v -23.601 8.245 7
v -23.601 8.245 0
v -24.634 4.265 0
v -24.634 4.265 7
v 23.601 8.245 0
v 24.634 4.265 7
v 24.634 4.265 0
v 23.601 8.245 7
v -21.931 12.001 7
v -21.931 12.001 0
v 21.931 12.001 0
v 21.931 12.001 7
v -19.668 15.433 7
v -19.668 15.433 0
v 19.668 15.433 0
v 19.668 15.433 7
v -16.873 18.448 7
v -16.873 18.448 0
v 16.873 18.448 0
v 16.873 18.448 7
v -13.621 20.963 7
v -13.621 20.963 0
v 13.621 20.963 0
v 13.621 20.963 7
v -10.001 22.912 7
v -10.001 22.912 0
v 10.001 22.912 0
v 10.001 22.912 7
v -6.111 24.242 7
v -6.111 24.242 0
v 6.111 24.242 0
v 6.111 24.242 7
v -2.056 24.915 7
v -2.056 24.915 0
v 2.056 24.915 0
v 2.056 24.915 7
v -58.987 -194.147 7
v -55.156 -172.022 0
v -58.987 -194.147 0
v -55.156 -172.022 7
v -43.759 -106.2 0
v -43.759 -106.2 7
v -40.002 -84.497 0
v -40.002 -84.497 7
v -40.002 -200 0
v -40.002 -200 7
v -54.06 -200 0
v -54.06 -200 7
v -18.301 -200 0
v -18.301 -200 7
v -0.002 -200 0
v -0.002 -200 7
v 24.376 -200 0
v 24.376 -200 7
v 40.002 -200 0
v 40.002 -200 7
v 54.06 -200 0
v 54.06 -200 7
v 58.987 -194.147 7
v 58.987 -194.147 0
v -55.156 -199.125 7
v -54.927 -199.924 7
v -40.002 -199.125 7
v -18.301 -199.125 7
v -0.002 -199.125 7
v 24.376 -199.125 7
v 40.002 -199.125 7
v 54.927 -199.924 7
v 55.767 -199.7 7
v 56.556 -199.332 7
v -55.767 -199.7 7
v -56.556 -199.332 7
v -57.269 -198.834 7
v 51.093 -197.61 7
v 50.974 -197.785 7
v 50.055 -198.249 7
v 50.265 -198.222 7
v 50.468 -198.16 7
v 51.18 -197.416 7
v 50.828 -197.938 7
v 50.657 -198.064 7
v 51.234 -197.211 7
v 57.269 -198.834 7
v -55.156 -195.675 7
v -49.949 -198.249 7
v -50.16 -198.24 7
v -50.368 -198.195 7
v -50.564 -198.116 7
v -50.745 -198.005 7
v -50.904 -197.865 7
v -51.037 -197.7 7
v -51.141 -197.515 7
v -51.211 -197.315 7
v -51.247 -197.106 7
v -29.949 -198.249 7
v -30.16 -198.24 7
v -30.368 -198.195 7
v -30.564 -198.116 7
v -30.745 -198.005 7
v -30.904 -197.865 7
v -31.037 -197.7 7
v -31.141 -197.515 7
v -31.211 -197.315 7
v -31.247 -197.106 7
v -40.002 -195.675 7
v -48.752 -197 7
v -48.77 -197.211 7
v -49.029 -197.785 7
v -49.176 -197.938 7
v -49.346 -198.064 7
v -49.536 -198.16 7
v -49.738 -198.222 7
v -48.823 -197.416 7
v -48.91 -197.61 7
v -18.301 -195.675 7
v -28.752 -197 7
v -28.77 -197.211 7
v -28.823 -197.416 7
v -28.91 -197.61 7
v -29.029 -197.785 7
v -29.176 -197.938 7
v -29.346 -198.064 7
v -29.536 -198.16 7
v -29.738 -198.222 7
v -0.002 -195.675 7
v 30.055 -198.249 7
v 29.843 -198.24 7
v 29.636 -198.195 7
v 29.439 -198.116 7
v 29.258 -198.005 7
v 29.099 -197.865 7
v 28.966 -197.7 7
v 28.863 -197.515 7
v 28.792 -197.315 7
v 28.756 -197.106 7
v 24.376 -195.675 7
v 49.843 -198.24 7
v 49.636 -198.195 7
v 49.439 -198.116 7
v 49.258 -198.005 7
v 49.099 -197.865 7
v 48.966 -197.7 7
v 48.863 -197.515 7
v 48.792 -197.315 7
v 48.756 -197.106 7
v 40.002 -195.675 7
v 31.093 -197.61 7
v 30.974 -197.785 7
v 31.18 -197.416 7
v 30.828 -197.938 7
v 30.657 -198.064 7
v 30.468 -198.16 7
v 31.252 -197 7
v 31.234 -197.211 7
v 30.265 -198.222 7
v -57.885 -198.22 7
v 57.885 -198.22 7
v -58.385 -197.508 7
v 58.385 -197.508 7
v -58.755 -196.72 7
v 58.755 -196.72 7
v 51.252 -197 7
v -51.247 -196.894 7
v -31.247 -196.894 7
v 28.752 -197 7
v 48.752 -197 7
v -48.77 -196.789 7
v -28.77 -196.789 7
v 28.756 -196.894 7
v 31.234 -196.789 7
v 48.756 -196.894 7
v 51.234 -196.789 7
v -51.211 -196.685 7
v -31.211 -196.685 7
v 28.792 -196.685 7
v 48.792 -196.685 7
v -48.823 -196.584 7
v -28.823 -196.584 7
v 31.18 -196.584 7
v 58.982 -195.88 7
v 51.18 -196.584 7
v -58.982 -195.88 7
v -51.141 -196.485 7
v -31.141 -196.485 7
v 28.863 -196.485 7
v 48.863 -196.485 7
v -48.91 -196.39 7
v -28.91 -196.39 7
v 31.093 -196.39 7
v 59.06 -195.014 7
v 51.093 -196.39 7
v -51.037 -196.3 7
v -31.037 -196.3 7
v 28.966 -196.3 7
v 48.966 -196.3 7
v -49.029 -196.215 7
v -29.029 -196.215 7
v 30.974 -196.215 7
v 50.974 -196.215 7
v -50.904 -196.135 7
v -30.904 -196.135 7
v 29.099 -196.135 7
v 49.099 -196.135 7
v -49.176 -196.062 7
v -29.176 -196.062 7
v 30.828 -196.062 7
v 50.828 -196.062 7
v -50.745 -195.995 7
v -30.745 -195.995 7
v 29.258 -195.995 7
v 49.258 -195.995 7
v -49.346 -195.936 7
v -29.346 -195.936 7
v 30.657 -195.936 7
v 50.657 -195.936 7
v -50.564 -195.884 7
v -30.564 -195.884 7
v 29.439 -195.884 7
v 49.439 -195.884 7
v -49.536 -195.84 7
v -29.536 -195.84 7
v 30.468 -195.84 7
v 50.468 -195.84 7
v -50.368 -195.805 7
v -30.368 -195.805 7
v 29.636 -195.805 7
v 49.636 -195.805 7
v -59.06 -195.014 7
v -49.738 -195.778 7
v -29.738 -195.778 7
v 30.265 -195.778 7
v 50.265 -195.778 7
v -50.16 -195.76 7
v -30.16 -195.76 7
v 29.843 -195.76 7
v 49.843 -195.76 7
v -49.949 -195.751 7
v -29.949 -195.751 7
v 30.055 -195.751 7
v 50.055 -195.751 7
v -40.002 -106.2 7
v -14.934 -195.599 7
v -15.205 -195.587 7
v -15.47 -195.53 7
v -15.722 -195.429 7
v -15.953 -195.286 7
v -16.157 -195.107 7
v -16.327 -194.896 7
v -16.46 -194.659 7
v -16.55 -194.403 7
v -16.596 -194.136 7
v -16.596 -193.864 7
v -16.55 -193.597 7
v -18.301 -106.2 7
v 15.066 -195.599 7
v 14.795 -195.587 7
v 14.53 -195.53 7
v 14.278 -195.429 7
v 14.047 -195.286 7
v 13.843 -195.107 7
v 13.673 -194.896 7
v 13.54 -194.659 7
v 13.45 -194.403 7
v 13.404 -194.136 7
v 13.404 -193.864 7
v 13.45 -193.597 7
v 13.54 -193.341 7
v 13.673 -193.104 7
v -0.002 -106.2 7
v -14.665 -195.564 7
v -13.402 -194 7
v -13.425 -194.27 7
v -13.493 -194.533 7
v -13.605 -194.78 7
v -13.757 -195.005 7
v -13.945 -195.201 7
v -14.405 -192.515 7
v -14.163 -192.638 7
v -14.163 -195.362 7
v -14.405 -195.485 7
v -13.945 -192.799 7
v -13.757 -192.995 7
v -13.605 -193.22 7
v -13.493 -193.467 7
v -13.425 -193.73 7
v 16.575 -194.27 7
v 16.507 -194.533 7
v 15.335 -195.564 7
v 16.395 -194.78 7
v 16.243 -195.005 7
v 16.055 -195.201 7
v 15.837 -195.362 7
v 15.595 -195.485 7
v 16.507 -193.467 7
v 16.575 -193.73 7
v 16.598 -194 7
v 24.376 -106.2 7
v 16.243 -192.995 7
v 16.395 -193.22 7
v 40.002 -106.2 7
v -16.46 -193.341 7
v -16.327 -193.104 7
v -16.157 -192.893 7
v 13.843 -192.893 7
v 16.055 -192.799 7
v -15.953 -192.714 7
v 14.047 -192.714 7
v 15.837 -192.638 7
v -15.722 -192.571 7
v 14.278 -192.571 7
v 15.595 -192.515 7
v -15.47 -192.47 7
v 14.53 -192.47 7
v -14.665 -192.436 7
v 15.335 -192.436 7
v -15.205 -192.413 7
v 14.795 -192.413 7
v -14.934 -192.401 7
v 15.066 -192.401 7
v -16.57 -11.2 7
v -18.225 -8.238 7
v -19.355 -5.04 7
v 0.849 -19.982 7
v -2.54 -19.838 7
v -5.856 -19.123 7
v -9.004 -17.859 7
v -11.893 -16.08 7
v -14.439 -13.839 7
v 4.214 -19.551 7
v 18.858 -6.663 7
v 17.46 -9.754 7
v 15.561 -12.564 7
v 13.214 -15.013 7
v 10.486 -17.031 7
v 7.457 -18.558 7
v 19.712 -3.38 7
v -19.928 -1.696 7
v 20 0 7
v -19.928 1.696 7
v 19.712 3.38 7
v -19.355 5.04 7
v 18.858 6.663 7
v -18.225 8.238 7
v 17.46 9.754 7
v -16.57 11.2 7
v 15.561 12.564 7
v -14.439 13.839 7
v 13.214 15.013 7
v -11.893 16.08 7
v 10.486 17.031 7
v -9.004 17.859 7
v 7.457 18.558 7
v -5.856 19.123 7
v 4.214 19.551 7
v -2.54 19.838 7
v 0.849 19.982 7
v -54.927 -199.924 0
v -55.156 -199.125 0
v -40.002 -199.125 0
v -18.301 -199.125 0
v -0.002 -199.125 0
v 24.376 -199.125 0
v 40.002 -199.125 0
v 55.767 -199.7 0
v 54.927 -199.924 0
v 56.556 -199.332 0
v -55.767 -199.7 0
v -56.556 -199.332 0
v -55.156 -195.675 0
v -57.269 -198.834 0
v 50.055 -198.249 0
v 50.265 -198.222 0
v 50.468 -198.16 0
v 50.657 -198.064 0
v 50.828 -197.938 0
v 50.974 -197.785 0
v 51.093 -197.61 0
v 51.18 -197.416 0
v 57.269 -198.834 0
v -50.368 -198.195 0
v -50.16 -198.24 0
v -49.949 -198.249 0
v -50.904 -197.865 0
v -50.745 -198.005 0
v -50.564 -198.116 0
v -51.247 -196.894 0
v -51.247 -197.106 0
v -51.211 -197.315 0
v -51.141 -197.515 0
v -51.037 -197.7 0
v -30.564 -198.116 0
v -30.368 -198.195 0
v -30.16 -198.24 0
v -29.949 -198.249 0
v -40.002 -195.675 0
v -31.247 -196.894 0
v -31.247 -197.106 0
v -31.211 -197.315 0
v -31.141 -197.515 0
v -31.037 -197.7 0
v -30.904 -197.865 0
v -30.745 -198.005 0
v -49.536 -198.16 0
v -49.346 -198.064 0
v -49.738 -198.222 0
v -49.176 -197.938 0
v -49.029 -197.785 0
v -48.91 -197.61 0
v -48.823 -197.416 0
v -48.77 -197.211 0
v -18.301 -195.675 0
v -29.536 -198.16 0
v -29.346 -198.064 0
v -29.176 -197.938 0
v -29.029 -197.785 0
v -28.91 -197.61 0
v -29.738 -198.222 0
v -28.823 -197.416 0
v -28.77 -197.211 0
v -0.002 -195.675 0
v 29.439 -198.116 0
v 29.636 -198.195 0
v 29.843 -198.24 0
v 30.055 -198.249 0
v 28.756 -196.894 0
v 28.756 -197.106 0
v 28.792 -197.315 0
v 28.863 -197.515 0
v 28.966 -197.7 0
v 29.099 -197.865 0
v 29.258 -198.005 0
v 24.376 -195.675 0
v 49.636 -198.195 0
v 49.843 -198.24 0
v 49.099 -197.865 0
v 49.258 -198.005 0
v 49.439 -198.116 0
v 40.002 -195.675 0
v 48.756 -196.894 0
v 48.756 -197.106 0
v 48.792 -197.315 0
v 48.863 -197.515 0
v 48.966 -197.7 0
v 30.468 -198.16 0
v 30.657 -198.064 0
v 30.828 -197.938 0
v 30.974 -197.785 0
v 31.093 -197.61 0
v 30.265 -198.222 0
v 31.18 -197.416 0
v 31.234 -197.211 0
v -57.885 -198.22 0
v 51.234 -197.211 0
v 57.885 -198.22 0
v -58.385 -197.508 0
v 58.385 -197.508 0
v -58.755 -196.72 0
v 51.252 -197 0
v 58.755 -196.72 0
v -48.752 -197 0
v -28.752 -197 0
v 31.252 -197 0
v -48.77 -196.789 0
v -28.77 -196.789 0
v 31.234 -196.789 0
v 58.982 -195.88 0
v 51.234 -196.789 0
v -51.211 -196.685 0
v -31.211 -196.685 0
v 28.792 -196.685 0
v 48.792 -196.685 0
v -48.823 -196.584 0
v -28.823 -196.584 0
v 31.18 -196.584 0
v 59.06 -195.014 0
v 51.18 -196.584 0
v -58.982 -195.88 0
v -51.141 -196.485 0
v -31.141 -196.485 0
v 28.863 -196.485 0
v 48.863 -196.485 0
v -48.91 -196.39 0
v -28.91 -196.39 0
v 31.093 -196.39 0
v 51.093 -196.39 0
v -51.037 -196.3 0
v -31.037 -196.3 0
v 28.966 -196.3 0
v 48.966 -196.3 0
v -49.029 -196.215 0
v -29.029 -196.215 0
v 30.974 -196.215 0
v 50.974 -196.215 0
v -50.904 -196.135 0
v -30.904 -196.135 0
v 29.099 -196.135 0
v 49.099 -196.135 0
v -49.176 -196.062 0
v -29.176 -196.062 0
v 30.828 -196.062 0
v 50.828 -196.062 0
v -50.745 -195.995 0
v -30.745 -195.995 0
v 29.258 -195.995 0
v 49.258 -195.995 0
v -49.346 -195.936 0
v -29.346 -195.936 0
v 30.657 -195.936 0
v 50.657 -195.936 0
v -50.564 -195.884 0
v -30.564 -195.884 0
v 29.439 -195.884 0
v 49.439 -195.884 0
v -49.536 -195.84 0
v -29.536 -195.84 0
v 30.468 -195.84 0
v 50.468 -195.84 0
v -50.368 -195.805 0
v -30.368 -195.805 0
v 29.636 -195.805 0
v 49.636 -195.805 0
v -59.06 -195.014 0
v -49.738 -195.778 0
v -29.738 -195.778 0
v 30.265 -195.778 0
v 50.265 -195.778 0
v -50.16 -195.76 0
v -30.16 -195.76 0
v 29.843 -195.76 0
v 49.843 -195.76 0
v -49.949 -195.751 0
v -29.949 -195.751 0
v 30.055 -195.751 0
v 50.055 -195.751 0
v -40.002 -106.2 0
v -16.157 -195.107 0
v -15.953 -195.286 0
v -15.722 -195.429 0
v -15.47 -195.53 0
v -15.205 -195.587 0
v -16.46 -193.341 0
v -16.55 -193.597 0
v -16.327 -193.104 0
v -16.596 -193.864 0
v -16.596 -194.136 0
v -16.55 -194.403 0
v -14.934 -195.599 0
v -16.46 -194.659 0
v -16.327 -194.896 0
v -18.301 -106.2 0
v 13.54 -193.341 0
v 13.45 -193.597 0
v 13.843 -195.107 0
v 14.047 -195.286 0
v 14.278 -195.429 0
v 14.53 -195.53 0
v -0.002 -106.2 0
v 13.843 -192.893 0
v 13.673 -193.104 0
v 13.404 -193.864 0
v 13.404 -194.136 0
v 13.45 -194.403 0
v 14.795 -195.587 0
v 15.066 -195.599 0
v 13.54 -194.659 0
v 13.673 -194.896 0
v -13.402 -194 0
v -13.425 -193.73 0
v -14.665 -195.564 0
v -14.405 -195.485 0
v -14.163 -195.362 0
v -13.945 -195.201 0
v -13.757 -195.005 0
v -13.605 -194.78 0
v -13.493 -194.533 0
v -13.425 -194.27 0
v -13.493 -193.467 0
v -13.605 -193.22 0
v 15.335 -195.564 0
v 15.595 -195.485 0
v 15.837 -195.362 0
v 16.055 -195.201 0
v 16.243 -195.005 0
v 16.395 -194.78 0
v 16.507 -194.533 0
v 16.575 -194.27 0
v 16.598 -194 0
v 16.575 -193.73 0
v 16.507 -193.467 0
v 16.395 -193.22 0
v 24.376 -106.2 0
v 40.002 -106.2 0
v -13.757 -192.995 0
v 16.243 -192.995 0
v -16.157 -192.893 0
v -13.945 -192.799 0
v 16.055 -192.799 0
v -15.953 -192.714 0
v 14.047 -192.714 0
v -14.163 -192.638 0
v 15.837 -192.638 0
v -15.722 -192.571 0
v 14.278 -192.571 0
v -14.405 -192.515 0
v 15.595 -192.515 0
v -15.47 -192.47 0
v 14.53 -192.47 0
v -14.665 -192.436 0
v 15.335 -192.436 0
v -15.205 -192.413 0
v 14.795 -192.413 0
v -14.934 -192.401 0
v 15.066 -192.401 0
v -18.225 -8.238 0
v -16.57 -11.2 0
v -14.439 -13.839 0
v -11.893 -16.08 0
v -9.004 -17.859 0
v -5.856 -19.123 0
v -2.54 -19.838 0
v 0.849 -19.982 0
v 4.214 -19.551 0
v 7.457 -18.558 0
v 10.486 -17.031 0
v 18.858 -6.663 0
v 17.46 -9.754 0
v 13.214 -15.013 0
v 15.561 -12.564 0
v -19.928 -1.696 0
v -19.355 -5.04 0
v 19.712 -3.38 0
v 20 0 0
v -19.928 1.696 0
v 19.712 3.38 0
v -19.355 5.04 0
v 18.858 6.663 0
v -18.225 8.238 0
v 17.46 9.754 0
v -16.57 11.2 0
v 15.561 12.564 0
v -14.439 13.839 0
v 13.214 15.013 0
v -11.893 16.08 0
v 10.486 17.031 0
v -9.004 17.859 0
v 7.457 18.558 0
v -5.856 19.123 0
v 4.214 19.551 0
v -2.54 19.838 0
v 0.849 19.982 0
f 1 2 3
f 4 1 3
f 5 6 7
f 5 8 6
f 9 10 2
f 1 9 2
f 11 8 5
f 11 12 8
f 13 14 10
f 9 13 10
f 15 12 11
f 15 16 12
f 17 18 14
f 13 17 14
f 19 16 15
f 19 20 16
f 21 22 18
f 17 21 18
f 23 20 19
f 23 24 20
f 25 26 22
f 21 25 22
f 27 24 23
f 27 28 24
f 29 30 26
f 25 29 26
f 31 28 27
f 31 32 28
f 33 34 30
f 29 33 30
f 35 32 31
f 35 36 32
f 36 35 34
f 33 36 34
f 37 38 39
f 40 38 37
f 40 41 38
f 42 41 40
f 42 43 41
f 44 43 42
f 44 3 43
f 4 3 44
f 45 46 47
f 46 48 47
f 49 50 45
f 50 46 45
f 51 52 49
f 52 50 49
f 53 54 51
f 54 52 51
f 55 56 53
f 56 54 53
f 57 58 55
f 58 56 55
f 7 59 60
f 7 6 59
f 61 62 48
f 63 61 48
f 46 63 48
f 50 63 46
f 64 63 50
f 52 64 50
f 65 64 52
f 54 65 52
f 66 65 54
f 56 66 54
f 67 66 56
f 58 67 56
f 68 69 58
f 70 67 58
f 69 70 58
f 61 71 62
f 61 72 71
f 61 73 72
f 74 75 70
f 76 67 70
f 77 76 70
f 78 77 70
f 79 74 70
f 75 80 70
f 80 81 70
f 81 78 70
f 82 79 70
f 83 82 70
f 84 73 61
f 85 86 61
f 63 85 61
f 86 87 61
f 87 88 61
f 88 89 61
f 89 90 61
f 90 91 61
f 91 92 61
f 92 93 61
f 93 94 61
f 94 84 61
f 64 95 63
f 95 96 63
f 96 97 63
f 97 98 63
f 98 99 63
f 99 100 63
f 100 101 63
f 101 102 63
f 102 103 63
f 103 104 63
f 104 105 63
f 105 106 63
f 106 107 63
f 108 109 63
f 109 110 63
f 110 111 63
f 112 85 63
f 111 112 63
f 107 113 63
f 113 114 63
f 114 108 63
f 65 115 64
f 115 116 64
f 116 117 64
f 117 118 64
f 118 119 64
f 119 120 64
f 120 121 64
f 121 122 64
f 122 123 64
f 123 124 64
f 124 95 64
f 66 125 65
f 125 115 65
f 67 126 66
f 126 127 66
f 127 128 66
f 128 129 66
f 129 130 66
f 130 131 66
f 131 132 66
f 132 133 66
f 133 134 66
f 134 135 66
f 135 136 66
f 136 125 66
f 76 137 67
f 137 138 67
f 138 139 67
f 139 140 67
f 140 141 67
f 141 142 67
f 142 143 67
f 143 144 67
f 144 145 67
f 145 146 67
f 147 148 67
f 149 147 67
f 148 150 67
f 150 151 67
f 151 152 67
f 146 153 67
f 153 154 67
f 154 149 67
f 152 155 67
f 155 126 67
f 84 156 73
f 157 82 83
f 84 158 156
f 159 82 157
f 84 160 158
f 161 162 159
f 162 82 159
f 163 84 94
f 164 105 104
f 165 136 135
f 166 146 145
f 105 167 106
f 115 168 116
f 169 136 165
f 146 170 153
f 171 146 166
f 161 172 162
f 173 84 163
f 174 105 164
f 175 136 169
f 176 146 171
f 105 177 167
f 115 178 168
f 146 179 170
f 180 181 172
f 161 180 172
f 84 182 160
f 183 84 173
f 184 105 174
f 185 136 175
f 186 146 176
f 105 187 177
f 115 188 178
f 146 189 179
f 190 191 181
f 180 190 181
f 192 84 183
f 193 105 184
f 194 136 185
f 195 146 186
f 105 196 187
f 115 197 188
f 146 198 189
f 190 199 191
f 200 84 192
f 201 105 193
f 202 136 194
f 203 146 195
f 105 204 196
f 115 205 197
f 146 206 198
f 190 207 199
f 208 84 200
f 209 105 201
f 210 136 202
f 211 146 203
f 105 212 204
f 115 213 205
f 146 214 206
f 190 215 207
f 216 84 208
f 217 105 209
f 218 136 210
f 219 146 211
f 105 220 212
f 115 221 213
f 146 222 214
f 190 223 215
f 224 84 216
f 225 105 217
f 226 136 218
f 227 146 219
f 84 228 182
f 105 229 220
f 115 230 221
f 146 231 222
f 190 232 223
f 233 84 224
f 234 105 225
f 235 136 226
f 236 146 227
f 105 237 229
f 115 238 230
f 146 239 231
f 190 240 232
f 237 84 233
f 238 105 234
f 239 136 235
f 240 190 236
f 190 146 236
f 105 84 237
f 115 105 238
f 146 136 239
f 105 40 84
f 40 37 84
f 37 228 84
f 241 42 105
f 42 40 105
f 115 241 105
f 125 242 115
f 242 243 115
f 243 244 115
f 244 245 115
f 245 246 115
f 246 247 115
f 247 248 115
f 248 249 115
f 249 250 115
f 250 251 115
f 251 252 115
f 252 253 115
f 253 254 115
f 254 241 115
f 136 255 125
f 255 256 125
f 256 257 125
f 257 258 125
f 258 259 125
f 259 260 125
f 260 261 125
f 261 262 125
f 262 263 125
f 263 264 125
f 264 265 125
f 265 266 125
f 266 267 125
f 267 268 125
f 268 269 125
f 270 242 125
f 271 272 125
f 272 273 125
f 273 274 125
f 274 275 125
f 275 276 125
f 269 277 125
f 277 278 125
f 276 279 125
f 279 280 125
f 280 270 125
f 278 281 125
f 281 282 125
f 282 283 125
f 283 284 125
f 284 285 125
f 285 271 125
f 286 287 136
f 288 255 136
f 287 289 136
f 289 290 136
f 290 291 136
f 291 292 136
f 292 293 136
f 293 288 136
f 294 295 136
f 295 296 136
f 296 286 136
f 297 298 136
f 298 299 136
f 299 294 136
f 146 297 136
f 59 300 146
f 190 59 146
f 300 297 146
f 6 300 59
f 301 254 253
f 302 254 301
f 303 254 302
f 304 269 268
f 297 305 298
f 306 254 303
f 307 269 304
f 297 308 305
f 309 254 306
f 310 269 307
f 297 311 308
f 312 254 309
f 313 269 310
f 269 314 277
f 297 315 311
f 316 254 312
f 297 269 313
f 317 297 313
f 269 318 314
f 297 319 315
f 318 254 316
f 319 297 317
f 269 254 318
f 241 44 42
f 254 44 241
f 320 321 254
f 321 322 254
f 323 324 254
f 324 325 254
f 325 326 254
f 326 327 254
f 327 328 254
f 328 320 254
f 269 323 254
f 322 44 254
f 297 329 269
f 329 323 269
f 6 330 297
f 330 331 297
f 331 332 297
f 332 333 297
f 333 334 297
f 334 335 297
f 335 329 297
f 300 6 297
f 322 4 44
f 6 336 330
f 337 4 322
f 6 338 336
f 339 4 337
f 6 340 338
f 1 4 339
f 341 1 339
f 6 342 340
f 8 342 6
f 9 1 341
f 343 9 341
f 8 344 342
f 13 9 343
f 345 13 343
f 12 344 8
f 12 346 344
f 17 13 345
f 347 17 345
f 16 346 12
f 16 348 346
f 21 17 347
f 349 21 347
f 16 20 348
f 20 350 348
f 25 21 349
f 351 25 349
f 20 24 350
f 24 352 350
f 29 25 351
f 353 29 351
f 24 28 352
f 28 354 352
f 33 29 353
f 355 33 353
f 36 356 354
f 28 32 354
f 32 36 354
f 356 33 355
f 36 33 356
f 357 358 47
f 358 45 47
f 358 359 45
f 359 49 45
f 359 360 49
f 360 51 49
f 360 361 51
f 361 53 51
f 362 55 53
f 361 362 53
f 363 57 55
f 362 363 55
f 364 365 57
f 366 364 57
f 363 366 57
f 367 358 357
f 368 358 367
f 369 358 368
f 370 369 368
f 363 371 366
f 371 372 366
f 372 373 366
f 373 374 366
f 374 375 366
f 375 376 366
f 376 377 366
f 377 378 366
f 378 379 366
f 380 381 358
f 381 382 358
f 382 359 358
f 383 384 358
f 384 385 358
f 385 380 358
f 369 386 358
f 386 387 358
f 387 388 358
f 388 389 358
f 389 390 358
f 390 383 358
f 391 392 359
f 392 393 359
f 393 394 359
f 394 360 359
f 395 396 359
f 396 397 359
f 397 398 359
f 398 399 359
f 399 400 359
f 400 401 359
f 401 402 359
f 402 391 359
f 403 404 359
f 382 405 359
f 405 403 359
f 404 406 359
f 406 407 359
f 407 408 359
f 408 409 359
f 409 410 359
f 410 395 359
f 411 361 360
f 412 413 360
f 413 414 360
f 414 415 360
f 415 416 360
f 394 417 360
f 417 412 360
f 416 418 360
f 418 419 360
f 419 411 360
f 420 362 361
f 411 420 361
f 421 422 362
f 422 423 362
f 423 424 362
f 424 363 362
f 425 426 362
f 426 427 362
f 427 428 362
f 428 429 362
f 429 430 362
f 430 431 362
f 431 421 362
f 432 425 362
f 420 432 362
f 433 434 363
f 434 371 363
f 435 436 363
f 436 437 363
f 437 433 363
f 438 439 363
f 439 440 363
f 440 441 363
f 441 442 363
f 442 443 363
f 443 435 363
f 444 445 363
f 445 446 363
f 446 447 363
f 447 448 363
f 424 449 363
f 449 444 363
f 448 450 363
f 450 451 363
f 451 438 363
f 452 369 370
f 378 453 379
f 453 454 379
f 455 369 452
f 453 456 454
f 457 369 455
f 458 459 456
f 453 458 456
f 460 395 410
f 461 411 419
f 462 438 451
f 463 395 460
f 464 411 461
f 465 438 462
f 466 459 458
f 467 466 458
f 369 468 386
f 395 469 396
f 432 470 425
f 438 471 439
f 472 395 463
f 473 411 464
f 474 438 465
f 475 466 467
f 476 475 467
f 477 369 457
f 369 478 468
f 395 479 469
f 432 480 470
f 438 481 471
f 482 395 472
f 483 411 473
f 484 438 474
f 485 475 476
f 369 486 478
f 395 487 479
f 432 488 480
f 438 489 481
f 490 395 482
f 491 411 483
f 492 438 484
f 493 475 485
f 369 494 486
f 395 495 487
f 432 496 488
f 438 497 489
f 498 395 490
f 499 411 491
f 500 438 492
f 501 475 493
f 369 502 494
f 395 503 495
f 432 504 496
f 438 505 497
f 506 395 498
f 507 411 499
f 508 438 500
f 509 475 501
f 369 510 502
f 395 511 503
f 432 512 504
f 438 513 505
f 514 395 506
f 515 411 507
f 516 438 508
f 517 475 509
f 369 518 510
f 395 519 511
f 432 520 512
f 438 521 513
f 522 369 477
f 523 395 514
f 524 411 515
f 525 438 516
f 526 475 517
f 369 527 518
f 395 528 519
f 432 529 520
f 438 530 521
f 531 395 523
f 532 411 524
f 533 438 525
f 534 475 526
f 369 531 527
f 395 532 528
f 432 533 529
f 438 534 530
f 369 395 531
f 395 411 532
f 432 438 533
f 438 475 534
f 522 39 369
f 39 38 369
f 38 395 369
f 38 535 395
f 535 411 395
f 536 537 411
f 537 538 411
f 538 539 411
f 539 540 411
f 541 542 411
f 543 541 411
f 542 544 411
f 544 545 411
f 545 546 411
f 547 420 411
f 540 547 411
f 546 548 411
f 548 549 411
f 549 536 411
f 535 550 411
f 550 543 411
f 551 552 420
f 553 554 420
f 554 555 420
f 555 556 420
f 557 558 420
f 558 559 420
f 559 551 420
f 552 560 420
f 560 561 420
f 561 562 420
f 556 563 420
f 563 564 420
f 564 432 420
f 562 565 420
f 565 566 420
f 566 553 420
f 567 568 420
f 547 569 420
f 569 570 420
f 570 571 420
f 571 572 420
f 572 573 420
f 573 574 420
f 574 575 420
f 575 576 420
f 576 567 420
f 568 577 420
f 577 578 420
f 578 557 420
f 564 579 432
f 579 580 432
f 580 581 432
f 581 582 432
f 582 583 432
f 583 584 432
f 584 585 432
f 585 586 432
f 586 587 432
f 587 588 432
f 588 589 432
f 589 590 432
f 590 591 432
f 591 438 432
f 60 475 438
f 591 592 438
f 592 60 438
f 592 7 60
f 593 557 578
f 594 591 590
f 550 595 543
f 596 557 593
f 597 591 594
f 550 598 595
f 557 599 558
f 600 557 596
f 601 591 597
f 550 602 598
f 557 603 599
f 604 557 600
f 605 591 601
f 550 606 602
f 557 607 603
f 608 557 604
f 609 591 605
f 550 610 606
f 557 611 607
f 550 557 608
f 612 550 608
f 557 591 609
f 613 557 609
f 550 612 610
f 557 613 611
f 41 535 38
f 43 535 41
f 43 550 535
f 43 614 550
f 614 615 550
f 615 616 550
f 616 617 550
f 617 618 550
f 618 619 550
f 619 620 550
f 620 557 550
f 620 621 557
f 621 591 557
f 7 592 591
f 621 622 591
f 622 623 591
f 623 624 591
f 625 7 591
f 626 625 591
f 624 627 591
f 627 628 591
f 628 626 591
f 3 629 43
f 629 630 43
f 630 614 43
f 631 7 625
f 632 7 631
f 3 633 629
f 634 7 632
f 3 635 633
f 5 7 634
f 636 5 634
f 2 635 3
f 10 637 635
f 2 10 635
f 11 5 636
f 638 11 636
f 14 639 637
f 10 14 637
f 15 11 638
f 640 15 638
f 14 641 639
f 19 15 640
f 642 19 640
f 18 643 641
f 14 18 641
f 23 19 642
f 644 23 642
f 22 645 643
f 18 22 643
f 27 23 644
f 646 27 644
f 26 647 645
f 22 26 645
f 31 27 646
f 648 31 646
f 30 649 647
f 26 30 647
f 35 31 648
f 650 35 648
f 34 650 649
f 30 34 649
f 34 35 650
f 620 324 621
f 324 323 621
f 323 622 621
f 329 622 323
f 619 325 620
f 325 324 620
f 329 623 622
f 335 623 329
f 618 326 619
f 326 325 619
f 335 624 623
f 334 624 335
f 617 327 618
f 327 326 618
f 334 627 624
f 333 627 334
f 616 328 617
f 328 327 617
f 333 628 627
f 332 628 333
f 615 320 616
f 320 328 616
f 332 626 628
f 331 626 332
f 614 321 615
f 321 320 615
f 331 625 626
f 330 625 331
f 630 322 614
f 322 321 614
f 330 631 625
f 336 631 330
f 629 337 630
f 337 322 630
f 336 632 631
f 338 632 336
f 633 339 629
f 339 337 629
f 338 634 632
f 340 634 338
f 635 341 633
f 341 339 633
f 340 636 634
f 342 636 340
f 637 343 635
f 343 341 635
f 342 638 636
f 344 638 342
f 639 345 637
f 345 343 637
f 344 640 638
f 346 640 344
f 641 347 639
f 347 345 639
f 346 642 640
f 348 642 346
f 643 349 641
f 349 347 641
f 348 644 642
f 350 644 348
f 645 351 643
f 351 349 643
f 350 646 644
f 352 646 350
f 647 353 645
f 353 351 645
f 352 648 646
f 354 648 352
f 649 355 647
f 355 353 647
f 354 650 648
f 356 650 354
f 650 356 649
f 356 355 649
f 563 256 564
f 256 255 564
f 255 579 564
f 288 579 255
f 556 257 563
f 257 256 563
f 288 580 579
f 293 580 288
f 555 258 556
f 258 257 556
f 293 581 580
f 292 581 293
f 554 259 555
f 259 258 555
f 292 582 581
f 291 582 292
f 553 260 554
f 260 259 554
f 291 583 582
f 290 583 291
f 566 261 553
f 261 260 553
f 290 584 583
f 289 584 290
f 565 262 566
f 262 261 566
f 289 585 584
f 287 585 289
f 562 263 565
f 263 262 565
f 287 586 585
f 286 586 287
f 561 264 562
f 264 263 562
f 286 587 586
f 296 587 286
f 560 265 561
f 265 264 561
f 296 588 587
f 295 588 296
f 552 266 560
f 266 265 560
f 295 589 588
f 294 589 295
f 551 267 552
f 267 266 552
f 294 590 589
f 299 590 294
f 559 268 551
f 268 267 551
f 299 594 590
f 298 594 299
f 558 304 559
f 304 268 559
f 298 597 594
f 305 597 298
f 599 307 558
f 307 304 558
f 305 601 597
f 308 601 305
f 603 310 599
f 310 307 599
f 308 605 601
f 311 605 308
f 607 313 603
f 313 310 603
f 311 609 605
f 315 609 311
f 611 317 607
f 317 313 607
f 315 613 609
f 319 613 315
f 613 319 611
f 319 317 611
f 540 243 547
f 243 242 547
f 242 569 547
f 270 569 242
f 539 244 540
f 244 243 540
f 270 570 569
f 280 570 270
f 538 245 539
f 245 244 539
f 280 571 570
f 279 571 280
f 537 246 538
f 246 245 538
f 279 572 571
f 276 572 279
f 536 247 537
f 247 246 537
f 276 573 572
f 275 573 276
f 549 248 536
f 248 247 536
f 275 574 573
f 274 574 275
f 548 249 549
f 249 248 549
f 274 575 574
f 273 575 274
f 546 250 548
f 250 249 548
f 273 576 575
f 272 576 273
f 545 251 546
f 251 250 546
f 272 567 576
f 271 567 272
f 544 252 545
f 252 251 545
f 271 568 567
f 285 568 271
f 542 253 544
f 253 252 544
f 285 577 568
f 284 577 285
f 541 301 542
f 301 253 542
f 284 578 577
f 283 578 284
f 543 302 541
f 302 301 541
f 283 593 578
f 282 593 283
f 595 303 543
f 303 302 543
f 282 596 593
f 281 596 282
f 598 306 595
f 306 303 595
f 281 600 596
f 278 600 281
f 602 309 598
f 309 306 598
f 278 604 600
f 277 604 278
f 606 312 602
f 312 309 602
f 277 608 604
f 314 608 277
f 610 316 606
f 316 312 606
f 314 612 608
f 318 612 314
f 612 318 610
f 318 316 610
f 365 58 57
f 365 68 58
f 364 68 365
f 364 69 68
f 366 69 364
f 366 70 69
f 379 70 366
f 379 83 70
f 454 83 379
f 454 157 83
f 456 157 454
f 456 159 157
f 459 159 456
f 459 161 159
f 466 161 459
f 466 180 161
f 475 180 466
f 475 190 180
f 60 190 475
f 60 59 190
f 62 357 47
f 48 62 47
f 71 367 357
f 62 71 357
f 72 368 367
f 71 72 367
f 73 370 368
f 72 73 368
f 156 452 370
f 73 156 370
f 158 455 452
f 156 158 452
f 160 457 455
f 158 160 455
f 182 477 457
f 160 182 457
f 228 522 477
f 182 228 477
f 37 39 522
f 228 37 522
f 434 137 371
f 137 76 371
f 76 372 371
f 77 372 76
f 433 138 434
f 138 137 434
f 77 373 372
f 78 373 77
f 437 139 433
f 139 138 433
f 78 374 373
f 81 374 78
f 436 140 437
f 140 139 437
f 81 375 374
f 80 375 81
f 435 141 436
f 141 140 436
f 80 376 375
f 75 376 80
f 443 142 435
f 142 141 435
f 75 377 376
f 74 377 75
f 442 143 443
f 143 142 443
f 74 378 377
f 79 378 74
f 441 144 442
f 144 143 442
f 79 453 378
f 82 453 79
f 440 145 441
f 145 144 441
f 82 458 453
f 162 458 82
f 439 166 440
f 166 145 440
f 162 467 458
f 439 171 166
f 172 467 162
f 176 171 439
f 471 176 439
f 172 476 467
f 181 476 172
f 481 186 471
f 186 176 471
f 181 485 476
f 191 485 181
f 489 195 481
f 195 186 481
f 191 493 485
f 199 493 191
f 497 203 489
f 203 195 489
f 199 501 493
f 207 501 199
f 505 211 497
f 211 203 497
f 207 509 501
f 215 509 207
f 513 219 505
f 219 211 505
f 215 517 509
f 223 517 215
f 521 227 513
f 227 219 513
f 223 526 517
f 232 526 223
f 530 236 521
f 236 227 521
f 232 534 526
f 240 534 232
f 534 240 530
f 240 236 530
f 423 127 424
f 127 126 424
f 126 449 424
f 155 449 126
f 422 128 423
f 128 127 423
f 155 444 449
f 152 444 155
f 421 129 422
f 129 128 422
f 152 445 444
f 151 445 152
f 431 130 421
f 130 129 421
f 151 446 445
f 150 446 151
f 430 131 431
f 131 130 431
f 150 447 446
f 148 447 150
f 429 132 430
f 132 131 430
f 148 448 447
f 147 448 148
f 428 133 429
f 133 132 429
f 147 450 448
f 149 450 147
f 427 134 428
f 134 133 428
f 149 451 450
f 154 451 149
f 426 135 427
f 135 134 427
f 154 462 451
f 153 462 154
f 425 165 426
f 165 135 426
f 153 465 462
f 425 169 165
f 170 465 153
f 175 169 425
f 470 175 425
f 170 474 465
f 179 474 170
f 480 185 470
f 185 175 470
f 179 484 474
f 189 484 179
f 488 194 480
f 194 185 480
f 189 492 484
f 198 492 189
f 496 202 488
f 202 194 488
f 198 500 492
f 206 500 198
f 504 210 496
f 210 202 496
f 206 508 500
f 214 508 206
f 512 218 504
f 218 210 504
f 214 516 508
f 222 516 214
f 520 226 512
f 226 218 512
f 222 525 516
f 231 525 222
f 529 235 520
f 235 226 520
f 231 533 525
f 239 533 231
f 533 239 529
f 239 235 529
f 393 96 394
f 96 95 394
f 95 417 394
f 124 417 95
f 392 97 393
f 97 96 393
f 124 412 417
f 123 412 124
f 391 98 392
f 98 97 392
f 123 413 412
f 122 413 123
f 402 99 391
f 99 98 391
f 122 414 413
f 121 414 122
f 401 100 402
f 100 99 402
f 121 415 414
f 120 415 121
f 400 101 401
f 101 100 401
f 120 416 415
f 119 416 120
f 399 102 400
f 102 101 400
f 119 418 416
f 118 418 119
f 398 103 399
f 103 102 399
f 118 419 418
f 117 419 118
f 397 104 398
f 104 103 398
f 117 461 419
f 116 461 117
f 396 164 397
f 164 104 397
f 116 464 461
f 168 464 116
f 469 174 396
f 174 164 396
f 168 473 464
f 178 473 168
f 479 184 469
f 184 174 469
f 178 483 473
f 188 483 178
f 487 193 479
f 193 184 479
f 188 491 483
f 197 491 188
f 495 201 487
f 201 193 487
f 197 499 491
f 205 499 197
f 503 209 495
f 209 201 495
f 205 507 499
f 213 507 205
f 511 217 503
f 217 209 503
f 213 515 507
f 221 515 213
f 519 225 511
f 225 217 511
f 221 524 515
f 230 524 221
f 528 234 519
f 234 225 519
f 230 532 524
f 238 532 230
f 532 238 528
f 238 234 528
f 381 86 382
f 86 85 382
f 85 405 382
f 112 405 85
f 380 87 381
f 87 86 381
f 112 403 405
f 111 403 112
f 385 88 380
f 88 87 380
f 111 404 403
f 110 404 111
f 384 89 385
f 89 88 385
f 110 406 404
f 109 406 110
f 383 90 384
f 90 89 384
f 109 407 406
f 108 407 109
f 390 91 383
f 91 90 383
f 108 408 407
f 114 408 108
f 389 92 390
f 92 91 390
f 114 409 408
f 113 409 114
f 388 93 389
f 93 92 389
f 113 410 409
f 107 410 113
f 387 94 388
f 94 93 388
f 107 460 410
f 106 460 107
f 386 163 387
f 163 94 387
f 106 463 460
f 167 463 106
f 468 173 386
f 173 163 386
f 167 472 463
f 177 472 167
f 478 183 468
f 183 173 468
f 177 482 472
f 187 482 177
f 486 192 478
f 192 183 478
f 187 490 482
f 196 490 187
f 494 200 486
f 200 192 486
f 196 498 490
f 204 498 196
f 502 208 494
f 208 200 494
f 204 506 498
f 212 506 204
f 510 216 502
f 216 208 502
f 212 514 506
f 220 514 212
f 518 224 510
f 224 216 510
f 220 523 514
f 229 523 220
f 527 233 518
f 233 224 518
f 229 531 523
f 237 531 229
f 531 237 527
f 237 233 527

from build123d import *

# Parameters (mm, degrees)
EXTRUDE_1_DEPTH     = 7
SKETCH_2_R          = 20
CUT_EXTRUDE_1_DEPTH = 7
SKETCH_3_R          = 1.6
CUT_EXTRUDE_2_DEPTH = 7
FILLET_1_R          = 5
SKETCH_4_R          = 1.25
CUT_EXTRUDE_3_DEPTH = 10


with BuildPart() as part:
    # 草图1 → 凸台-拉伸1 (new body)
    with BuildSketch(Plane.XY):
        with BuildLine():
            ThreePointArc((-24.633500506, 4.265050152), (0, 25), (24.633500506, 4.265050152))
            Line((24.633500506, 4.265050152), (60, -200))
            Line((60, -200), (-60, -200))
            Line((-60, -200), (-24.633500506, 4.265050152))
        make_face()
    extrude(amount=EXTRUDE_1_DEPTH)

    # 草图2 → 切除-拉伸1 (cut)
    with BuildSketch(Plane.XY.offset(7)):
        Circle(SKETCH_2_R)
    extrude(amount=-CUT_EXTRUDE_1_DEPTH, mode=Mode.SUBTRACT)

    # 草图3 → 切除-拉伸2 (cut)
    with BuildSketch(Plane.XY.offset(7)):
        with Locations((-15.001714002, -194)):
            Circle(SKETCH_3_R)
        with Locations((14.998285998, -194)):
            Circle(SKETCH_3_R)
    extrude(amount=-CUT_EXTRUDE_2_DEPTH, mode=Mode.SUBTRACT)

    # 圆角1
    fillet_1_edges = [part.edges().sort_by_distance(p)[0] for p in [
        (60, -200, 3.5),
        (-60, -200, 3.5),
    ]]
    fillet(fillet_1_edges, radius=FILLET_1_R)

    # 草图4 → 切除-拉伸3 (cut)
    with BuildSketch(Plane.XY.offset(7)):
        with Locations((-50.001714002, -197)):
            Circle(SKETCH_4_R)
        with Locations((-30.001714002, -197)):
            Circle(SKETCH_4_R)
        with Locations((30.001714002, -197)):
            Circle(SKETCH_4_R)
        with Locations((50.001714002, -197)):
            Circle(SKETCH_4_R)
    extrude(amount=-CUT_EXTRUDE_3_DEPTH, mode=Mode.SUBTRACT)


solid = part.part
